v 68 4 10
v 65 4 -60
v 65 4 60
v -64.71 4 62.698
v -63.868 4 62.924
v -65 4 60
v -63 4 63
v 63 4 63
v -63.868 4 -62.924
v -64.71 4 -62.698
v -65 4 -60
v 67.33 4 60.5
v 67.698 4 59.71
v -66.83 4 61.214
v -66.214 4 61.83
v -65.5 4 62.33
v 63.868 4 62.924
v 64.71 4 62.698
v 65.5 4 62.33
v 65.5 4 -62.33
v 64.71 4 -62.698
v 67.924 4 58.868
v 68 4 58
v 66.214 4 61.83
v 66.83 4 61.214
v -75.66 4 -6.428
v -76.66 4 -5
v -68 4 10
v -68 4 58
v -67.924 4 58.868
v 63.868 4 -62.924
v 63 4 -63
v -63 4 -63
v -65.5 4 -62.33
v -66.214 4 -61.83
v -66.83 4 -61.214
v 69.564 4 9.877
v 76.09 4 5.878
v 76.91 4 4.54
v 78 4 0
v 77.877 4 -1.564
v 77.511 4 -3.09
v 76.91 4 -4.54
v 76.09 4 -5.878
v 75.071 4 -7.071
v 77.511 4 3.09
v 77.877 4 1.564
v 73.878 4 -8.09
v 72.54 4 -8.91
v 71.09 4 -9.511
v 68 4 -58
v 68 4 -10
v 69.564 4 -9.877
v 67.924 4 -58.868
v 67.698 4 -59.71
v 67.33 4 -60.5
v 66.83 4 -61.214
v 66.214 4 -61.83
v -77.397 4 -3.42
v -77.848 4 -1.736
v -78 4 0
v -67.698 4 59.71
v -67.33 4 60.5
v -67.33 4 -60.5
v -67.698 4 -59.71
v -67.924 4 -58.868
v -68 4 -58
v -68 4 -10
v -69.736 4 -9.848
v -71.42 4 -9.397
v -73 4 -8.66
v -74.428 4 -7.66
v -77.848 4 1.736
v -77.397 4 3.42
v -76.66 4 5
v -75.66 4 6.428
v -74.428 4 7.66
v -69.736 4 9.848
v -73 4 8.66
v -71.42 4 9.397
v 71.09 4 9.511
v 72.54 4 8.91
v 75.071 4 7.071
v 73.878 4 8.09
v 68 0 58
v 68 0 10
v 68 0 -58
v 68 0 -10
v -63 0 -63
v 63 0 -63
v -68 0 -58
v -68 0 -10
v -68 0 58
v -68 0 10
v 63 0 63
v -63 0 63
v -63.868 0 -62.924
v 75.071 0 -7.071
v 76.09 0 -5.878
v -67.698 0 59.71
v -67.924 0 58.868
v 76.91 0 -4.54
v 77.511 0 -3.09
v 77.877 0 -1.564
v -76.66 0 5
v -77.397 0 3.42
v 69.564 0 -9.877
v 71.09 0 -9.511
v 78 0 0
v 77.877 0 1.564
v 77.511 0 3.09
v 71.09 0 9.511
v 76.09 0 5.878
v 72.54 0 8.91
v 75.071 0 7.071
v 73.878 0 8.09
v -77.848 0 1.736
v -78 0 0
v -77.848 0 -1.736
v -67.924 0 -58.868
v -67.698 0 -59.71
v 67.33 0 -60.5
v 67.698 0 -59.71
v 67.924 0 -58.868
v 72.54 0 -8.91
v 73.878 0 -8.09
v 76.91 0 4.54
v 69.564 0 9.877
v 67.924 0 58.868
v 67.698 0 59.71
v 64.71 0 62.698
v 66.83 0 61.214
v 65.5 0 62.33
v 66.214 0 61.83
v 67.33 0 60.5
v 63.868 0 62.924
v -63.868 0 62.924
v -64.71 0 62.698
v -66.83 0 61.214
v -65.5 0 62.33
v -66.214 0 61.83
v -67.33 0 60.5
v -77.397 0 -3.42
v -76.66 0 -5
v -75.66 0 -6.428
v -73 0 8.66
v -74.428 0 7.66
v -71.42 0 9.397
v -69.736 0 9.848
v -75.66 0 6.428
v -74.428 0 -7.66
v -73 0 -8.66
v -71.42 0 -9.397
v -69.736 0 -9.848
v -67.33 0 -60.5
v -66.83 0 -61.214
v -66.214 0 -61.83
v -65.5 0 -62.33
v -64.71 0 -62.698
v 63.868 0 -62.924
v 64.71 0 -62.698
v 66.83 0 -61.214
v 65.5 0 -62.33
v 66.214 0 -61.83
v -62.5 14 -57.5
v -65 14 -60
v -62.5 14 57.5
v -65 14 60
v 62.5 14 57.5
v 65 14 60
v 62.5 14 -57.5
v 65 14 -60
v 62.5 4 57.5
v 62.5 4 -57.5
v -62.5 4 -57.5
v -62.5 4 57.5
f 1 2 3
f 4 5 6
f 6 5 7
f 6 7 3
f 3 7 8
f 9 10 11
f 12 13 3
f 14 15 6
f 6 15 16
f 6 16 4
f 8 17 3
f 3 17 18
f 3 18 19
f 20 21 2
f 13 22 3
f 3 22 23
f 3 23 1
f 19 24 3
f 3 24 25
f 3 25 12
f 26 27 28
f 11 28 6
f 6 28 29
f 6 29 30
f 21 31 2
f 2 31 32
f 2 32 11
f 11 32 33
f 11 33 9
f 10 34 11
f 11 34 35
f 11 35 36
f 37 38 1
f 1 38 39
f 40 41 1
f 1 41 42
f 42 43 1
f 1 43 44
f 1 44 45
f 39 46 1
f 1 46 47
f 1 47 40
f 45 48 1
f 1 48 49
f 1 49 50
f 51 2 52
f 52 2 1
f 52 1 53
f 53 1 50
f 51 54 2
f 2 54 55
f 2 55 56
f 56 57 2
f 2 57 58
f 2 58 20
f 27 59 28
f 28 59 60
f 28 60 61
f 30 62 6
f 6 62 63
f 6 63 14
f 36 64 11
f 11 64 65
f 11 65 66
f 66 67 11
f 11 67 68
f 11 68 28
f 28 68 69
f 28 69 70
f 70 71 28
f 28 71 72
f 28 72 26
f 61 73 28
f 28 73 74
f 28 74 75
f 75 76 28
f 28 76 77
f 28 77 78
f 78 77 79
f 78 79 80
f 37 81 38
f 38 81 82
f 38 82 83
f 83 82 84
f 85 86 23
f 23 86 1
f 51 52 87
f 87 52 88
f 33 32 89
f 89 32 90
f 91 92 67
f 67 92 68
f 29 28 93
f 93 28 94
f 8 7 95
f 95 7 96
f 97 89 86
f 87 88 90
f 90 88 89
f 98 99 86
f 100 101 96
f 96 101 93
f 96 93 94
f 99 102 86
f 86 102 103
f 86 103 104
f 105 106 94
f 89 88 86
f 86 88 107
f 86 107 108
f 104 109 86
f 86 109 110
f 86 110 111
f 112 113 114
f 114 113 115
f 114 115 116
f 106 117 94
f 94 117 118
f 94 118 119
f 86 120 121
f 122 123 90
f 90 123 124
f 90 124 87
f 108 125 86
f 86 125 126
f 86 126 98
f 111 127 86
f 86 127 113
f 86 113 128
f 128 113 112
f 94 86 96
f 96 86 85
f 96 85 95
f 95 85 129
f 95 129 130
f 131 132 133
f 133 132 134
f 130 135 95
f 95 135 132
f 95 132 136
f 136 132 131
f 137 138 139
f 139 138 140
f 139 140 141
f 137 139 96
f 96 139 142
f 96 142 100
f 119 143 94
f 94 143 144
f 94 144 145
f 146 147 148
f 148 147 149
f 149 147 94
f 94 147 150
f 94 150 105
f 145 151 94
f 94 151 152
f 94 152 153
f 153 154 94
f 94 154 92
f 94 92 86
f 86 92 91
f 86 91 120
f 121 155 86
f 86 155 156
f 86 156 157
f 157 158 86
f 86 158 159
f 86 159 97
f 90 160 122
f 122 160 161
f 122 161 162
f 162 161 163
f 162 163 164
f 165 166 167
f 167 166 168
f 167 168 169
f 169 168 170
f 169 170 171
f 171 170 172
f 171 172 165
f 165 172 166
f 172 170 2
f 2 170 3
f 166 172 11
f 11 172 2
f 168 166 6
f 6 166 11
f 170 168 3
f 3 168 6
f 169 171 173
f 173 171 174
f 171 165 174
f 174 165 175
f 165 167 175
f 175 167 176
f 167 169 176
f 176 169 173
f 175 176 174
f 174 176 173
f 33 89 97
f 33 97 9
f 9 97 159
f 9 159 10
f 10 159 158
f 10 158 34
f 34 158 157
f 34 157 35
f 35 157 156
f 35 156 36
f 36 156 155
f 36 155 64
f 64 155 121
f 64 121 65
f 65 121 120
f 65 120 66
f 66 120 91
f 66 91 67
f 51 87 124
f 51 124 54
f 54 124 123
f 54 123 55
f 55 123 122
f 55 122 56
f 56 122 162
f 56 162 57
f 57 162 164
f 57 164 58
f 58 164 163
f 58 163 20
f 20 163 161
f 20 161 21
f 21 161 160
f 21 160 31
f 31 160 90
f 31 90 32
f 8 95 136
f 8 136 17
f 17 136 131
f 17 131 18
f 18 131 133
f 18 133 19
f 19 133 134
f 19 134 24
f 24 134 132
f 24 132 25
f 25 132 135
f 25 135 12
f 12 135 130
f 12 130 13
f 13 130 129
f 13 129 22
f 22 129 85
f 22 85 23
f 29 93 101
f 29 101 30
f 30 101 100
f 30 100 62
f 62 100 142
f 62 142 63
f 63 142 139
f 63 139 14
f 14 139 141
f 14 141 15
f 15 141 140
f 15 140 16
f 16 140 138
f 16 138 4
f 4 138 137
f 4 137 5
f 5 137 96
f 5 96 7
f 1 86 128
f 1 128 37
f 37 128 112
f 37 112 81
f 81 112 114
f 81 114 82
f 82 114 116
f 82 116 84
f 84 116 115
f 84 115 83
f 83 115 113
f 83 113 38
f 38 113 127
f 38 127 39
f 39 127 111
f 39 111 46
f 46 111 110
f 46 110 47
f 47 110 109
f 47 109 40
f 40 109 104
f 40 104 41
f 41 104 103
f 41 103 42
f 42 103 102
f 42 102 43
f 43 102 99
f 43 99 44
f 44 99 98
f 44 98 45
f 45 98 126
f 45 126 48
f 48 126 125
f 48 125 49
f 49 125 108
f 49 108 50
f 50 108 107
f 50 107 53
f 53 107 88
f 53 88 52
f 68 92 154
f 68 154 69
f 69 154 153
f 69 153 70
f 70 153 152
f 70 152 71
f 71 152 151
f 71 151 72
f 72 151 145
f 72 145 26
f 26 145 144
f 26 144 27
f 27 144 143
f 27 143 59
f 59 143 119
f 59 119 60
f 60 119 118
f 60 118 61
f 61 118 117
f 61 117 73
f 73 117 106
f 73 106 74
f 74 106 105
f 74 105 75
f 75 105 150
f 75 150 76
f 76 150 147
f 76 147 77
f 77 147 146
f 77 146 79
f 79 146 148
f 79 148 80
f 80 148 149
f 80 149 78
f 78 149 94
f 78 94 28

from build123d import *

# Parameters (mm, degrees)
BOSS_EXTRUDE1_DEPTH = 4
SKETCH3_W           = 130
SKETCH3_H           = 120
SKETCH3_W_2         = 125
SKETCH3_H_2         = 115
BOSS_EXTRUDE2_DEPTH = 10
FILLET1_R           = 5
FILLET2_R           = 10


with BuildPart() as part:
    # Sketch1 → Boss-Extrude1 (new body)
    with BuildSketch(Plane(origin=(0, 0, 0), x_dir=(1, 0, 0), z_dir=(0, 1, 0))):
        Polygon((-68, 63), (68, 63), (68, 39.979206653), (68, 10), (78, 10), (78, -10), (68, -10), (68, -63), (-68, -63), (-68, -10), (-78, -10), (-78, 10), (-68, 10), (-68, 39.979206653), align=None)
    extrude(amount=BOSS_EXTRUDE1_DEPTH)

    # Sketch3 → Boss-Extrude2 (add)
    with BuildSketch(Plane(origin=(0, 4, 0), x_dir=(1, 0, 0), z_dir=(0, 1, 0))):
        Rectangle(SKETCH3_W, SKETCH3_H)
        Rectangle(SKETCH3_W_2, SKETCH3_H_2, mode=Mode.SUBTRACT)
    extrude(amount=BOSS_EXTRUDE2_DEPTH)

    # Fillet1
    fillet1_edges = [part.edges().sort_by_distance(p)[0] for p in [
        (68, 2, 63),
        (-68, 2, 63),
        (-68, 2, -63),
        (68, 2, -63),
    ]]
    fillet(fillet1_edges, radius=FILLET1_R)

    # Fillet2
    fillet2_edges = [part.edges().sort_by_distance(p)[0] for p in [
        (78, 2, -10),
        (78, 2, 10),
        (-78, 2, 10),
        (-78, 2, -10),
    ]]
    fillet(fillet2_edges, radius=FILLET2_R - 0.0001)  # a hair under: the kernel refuses the full size


solid = part.part
